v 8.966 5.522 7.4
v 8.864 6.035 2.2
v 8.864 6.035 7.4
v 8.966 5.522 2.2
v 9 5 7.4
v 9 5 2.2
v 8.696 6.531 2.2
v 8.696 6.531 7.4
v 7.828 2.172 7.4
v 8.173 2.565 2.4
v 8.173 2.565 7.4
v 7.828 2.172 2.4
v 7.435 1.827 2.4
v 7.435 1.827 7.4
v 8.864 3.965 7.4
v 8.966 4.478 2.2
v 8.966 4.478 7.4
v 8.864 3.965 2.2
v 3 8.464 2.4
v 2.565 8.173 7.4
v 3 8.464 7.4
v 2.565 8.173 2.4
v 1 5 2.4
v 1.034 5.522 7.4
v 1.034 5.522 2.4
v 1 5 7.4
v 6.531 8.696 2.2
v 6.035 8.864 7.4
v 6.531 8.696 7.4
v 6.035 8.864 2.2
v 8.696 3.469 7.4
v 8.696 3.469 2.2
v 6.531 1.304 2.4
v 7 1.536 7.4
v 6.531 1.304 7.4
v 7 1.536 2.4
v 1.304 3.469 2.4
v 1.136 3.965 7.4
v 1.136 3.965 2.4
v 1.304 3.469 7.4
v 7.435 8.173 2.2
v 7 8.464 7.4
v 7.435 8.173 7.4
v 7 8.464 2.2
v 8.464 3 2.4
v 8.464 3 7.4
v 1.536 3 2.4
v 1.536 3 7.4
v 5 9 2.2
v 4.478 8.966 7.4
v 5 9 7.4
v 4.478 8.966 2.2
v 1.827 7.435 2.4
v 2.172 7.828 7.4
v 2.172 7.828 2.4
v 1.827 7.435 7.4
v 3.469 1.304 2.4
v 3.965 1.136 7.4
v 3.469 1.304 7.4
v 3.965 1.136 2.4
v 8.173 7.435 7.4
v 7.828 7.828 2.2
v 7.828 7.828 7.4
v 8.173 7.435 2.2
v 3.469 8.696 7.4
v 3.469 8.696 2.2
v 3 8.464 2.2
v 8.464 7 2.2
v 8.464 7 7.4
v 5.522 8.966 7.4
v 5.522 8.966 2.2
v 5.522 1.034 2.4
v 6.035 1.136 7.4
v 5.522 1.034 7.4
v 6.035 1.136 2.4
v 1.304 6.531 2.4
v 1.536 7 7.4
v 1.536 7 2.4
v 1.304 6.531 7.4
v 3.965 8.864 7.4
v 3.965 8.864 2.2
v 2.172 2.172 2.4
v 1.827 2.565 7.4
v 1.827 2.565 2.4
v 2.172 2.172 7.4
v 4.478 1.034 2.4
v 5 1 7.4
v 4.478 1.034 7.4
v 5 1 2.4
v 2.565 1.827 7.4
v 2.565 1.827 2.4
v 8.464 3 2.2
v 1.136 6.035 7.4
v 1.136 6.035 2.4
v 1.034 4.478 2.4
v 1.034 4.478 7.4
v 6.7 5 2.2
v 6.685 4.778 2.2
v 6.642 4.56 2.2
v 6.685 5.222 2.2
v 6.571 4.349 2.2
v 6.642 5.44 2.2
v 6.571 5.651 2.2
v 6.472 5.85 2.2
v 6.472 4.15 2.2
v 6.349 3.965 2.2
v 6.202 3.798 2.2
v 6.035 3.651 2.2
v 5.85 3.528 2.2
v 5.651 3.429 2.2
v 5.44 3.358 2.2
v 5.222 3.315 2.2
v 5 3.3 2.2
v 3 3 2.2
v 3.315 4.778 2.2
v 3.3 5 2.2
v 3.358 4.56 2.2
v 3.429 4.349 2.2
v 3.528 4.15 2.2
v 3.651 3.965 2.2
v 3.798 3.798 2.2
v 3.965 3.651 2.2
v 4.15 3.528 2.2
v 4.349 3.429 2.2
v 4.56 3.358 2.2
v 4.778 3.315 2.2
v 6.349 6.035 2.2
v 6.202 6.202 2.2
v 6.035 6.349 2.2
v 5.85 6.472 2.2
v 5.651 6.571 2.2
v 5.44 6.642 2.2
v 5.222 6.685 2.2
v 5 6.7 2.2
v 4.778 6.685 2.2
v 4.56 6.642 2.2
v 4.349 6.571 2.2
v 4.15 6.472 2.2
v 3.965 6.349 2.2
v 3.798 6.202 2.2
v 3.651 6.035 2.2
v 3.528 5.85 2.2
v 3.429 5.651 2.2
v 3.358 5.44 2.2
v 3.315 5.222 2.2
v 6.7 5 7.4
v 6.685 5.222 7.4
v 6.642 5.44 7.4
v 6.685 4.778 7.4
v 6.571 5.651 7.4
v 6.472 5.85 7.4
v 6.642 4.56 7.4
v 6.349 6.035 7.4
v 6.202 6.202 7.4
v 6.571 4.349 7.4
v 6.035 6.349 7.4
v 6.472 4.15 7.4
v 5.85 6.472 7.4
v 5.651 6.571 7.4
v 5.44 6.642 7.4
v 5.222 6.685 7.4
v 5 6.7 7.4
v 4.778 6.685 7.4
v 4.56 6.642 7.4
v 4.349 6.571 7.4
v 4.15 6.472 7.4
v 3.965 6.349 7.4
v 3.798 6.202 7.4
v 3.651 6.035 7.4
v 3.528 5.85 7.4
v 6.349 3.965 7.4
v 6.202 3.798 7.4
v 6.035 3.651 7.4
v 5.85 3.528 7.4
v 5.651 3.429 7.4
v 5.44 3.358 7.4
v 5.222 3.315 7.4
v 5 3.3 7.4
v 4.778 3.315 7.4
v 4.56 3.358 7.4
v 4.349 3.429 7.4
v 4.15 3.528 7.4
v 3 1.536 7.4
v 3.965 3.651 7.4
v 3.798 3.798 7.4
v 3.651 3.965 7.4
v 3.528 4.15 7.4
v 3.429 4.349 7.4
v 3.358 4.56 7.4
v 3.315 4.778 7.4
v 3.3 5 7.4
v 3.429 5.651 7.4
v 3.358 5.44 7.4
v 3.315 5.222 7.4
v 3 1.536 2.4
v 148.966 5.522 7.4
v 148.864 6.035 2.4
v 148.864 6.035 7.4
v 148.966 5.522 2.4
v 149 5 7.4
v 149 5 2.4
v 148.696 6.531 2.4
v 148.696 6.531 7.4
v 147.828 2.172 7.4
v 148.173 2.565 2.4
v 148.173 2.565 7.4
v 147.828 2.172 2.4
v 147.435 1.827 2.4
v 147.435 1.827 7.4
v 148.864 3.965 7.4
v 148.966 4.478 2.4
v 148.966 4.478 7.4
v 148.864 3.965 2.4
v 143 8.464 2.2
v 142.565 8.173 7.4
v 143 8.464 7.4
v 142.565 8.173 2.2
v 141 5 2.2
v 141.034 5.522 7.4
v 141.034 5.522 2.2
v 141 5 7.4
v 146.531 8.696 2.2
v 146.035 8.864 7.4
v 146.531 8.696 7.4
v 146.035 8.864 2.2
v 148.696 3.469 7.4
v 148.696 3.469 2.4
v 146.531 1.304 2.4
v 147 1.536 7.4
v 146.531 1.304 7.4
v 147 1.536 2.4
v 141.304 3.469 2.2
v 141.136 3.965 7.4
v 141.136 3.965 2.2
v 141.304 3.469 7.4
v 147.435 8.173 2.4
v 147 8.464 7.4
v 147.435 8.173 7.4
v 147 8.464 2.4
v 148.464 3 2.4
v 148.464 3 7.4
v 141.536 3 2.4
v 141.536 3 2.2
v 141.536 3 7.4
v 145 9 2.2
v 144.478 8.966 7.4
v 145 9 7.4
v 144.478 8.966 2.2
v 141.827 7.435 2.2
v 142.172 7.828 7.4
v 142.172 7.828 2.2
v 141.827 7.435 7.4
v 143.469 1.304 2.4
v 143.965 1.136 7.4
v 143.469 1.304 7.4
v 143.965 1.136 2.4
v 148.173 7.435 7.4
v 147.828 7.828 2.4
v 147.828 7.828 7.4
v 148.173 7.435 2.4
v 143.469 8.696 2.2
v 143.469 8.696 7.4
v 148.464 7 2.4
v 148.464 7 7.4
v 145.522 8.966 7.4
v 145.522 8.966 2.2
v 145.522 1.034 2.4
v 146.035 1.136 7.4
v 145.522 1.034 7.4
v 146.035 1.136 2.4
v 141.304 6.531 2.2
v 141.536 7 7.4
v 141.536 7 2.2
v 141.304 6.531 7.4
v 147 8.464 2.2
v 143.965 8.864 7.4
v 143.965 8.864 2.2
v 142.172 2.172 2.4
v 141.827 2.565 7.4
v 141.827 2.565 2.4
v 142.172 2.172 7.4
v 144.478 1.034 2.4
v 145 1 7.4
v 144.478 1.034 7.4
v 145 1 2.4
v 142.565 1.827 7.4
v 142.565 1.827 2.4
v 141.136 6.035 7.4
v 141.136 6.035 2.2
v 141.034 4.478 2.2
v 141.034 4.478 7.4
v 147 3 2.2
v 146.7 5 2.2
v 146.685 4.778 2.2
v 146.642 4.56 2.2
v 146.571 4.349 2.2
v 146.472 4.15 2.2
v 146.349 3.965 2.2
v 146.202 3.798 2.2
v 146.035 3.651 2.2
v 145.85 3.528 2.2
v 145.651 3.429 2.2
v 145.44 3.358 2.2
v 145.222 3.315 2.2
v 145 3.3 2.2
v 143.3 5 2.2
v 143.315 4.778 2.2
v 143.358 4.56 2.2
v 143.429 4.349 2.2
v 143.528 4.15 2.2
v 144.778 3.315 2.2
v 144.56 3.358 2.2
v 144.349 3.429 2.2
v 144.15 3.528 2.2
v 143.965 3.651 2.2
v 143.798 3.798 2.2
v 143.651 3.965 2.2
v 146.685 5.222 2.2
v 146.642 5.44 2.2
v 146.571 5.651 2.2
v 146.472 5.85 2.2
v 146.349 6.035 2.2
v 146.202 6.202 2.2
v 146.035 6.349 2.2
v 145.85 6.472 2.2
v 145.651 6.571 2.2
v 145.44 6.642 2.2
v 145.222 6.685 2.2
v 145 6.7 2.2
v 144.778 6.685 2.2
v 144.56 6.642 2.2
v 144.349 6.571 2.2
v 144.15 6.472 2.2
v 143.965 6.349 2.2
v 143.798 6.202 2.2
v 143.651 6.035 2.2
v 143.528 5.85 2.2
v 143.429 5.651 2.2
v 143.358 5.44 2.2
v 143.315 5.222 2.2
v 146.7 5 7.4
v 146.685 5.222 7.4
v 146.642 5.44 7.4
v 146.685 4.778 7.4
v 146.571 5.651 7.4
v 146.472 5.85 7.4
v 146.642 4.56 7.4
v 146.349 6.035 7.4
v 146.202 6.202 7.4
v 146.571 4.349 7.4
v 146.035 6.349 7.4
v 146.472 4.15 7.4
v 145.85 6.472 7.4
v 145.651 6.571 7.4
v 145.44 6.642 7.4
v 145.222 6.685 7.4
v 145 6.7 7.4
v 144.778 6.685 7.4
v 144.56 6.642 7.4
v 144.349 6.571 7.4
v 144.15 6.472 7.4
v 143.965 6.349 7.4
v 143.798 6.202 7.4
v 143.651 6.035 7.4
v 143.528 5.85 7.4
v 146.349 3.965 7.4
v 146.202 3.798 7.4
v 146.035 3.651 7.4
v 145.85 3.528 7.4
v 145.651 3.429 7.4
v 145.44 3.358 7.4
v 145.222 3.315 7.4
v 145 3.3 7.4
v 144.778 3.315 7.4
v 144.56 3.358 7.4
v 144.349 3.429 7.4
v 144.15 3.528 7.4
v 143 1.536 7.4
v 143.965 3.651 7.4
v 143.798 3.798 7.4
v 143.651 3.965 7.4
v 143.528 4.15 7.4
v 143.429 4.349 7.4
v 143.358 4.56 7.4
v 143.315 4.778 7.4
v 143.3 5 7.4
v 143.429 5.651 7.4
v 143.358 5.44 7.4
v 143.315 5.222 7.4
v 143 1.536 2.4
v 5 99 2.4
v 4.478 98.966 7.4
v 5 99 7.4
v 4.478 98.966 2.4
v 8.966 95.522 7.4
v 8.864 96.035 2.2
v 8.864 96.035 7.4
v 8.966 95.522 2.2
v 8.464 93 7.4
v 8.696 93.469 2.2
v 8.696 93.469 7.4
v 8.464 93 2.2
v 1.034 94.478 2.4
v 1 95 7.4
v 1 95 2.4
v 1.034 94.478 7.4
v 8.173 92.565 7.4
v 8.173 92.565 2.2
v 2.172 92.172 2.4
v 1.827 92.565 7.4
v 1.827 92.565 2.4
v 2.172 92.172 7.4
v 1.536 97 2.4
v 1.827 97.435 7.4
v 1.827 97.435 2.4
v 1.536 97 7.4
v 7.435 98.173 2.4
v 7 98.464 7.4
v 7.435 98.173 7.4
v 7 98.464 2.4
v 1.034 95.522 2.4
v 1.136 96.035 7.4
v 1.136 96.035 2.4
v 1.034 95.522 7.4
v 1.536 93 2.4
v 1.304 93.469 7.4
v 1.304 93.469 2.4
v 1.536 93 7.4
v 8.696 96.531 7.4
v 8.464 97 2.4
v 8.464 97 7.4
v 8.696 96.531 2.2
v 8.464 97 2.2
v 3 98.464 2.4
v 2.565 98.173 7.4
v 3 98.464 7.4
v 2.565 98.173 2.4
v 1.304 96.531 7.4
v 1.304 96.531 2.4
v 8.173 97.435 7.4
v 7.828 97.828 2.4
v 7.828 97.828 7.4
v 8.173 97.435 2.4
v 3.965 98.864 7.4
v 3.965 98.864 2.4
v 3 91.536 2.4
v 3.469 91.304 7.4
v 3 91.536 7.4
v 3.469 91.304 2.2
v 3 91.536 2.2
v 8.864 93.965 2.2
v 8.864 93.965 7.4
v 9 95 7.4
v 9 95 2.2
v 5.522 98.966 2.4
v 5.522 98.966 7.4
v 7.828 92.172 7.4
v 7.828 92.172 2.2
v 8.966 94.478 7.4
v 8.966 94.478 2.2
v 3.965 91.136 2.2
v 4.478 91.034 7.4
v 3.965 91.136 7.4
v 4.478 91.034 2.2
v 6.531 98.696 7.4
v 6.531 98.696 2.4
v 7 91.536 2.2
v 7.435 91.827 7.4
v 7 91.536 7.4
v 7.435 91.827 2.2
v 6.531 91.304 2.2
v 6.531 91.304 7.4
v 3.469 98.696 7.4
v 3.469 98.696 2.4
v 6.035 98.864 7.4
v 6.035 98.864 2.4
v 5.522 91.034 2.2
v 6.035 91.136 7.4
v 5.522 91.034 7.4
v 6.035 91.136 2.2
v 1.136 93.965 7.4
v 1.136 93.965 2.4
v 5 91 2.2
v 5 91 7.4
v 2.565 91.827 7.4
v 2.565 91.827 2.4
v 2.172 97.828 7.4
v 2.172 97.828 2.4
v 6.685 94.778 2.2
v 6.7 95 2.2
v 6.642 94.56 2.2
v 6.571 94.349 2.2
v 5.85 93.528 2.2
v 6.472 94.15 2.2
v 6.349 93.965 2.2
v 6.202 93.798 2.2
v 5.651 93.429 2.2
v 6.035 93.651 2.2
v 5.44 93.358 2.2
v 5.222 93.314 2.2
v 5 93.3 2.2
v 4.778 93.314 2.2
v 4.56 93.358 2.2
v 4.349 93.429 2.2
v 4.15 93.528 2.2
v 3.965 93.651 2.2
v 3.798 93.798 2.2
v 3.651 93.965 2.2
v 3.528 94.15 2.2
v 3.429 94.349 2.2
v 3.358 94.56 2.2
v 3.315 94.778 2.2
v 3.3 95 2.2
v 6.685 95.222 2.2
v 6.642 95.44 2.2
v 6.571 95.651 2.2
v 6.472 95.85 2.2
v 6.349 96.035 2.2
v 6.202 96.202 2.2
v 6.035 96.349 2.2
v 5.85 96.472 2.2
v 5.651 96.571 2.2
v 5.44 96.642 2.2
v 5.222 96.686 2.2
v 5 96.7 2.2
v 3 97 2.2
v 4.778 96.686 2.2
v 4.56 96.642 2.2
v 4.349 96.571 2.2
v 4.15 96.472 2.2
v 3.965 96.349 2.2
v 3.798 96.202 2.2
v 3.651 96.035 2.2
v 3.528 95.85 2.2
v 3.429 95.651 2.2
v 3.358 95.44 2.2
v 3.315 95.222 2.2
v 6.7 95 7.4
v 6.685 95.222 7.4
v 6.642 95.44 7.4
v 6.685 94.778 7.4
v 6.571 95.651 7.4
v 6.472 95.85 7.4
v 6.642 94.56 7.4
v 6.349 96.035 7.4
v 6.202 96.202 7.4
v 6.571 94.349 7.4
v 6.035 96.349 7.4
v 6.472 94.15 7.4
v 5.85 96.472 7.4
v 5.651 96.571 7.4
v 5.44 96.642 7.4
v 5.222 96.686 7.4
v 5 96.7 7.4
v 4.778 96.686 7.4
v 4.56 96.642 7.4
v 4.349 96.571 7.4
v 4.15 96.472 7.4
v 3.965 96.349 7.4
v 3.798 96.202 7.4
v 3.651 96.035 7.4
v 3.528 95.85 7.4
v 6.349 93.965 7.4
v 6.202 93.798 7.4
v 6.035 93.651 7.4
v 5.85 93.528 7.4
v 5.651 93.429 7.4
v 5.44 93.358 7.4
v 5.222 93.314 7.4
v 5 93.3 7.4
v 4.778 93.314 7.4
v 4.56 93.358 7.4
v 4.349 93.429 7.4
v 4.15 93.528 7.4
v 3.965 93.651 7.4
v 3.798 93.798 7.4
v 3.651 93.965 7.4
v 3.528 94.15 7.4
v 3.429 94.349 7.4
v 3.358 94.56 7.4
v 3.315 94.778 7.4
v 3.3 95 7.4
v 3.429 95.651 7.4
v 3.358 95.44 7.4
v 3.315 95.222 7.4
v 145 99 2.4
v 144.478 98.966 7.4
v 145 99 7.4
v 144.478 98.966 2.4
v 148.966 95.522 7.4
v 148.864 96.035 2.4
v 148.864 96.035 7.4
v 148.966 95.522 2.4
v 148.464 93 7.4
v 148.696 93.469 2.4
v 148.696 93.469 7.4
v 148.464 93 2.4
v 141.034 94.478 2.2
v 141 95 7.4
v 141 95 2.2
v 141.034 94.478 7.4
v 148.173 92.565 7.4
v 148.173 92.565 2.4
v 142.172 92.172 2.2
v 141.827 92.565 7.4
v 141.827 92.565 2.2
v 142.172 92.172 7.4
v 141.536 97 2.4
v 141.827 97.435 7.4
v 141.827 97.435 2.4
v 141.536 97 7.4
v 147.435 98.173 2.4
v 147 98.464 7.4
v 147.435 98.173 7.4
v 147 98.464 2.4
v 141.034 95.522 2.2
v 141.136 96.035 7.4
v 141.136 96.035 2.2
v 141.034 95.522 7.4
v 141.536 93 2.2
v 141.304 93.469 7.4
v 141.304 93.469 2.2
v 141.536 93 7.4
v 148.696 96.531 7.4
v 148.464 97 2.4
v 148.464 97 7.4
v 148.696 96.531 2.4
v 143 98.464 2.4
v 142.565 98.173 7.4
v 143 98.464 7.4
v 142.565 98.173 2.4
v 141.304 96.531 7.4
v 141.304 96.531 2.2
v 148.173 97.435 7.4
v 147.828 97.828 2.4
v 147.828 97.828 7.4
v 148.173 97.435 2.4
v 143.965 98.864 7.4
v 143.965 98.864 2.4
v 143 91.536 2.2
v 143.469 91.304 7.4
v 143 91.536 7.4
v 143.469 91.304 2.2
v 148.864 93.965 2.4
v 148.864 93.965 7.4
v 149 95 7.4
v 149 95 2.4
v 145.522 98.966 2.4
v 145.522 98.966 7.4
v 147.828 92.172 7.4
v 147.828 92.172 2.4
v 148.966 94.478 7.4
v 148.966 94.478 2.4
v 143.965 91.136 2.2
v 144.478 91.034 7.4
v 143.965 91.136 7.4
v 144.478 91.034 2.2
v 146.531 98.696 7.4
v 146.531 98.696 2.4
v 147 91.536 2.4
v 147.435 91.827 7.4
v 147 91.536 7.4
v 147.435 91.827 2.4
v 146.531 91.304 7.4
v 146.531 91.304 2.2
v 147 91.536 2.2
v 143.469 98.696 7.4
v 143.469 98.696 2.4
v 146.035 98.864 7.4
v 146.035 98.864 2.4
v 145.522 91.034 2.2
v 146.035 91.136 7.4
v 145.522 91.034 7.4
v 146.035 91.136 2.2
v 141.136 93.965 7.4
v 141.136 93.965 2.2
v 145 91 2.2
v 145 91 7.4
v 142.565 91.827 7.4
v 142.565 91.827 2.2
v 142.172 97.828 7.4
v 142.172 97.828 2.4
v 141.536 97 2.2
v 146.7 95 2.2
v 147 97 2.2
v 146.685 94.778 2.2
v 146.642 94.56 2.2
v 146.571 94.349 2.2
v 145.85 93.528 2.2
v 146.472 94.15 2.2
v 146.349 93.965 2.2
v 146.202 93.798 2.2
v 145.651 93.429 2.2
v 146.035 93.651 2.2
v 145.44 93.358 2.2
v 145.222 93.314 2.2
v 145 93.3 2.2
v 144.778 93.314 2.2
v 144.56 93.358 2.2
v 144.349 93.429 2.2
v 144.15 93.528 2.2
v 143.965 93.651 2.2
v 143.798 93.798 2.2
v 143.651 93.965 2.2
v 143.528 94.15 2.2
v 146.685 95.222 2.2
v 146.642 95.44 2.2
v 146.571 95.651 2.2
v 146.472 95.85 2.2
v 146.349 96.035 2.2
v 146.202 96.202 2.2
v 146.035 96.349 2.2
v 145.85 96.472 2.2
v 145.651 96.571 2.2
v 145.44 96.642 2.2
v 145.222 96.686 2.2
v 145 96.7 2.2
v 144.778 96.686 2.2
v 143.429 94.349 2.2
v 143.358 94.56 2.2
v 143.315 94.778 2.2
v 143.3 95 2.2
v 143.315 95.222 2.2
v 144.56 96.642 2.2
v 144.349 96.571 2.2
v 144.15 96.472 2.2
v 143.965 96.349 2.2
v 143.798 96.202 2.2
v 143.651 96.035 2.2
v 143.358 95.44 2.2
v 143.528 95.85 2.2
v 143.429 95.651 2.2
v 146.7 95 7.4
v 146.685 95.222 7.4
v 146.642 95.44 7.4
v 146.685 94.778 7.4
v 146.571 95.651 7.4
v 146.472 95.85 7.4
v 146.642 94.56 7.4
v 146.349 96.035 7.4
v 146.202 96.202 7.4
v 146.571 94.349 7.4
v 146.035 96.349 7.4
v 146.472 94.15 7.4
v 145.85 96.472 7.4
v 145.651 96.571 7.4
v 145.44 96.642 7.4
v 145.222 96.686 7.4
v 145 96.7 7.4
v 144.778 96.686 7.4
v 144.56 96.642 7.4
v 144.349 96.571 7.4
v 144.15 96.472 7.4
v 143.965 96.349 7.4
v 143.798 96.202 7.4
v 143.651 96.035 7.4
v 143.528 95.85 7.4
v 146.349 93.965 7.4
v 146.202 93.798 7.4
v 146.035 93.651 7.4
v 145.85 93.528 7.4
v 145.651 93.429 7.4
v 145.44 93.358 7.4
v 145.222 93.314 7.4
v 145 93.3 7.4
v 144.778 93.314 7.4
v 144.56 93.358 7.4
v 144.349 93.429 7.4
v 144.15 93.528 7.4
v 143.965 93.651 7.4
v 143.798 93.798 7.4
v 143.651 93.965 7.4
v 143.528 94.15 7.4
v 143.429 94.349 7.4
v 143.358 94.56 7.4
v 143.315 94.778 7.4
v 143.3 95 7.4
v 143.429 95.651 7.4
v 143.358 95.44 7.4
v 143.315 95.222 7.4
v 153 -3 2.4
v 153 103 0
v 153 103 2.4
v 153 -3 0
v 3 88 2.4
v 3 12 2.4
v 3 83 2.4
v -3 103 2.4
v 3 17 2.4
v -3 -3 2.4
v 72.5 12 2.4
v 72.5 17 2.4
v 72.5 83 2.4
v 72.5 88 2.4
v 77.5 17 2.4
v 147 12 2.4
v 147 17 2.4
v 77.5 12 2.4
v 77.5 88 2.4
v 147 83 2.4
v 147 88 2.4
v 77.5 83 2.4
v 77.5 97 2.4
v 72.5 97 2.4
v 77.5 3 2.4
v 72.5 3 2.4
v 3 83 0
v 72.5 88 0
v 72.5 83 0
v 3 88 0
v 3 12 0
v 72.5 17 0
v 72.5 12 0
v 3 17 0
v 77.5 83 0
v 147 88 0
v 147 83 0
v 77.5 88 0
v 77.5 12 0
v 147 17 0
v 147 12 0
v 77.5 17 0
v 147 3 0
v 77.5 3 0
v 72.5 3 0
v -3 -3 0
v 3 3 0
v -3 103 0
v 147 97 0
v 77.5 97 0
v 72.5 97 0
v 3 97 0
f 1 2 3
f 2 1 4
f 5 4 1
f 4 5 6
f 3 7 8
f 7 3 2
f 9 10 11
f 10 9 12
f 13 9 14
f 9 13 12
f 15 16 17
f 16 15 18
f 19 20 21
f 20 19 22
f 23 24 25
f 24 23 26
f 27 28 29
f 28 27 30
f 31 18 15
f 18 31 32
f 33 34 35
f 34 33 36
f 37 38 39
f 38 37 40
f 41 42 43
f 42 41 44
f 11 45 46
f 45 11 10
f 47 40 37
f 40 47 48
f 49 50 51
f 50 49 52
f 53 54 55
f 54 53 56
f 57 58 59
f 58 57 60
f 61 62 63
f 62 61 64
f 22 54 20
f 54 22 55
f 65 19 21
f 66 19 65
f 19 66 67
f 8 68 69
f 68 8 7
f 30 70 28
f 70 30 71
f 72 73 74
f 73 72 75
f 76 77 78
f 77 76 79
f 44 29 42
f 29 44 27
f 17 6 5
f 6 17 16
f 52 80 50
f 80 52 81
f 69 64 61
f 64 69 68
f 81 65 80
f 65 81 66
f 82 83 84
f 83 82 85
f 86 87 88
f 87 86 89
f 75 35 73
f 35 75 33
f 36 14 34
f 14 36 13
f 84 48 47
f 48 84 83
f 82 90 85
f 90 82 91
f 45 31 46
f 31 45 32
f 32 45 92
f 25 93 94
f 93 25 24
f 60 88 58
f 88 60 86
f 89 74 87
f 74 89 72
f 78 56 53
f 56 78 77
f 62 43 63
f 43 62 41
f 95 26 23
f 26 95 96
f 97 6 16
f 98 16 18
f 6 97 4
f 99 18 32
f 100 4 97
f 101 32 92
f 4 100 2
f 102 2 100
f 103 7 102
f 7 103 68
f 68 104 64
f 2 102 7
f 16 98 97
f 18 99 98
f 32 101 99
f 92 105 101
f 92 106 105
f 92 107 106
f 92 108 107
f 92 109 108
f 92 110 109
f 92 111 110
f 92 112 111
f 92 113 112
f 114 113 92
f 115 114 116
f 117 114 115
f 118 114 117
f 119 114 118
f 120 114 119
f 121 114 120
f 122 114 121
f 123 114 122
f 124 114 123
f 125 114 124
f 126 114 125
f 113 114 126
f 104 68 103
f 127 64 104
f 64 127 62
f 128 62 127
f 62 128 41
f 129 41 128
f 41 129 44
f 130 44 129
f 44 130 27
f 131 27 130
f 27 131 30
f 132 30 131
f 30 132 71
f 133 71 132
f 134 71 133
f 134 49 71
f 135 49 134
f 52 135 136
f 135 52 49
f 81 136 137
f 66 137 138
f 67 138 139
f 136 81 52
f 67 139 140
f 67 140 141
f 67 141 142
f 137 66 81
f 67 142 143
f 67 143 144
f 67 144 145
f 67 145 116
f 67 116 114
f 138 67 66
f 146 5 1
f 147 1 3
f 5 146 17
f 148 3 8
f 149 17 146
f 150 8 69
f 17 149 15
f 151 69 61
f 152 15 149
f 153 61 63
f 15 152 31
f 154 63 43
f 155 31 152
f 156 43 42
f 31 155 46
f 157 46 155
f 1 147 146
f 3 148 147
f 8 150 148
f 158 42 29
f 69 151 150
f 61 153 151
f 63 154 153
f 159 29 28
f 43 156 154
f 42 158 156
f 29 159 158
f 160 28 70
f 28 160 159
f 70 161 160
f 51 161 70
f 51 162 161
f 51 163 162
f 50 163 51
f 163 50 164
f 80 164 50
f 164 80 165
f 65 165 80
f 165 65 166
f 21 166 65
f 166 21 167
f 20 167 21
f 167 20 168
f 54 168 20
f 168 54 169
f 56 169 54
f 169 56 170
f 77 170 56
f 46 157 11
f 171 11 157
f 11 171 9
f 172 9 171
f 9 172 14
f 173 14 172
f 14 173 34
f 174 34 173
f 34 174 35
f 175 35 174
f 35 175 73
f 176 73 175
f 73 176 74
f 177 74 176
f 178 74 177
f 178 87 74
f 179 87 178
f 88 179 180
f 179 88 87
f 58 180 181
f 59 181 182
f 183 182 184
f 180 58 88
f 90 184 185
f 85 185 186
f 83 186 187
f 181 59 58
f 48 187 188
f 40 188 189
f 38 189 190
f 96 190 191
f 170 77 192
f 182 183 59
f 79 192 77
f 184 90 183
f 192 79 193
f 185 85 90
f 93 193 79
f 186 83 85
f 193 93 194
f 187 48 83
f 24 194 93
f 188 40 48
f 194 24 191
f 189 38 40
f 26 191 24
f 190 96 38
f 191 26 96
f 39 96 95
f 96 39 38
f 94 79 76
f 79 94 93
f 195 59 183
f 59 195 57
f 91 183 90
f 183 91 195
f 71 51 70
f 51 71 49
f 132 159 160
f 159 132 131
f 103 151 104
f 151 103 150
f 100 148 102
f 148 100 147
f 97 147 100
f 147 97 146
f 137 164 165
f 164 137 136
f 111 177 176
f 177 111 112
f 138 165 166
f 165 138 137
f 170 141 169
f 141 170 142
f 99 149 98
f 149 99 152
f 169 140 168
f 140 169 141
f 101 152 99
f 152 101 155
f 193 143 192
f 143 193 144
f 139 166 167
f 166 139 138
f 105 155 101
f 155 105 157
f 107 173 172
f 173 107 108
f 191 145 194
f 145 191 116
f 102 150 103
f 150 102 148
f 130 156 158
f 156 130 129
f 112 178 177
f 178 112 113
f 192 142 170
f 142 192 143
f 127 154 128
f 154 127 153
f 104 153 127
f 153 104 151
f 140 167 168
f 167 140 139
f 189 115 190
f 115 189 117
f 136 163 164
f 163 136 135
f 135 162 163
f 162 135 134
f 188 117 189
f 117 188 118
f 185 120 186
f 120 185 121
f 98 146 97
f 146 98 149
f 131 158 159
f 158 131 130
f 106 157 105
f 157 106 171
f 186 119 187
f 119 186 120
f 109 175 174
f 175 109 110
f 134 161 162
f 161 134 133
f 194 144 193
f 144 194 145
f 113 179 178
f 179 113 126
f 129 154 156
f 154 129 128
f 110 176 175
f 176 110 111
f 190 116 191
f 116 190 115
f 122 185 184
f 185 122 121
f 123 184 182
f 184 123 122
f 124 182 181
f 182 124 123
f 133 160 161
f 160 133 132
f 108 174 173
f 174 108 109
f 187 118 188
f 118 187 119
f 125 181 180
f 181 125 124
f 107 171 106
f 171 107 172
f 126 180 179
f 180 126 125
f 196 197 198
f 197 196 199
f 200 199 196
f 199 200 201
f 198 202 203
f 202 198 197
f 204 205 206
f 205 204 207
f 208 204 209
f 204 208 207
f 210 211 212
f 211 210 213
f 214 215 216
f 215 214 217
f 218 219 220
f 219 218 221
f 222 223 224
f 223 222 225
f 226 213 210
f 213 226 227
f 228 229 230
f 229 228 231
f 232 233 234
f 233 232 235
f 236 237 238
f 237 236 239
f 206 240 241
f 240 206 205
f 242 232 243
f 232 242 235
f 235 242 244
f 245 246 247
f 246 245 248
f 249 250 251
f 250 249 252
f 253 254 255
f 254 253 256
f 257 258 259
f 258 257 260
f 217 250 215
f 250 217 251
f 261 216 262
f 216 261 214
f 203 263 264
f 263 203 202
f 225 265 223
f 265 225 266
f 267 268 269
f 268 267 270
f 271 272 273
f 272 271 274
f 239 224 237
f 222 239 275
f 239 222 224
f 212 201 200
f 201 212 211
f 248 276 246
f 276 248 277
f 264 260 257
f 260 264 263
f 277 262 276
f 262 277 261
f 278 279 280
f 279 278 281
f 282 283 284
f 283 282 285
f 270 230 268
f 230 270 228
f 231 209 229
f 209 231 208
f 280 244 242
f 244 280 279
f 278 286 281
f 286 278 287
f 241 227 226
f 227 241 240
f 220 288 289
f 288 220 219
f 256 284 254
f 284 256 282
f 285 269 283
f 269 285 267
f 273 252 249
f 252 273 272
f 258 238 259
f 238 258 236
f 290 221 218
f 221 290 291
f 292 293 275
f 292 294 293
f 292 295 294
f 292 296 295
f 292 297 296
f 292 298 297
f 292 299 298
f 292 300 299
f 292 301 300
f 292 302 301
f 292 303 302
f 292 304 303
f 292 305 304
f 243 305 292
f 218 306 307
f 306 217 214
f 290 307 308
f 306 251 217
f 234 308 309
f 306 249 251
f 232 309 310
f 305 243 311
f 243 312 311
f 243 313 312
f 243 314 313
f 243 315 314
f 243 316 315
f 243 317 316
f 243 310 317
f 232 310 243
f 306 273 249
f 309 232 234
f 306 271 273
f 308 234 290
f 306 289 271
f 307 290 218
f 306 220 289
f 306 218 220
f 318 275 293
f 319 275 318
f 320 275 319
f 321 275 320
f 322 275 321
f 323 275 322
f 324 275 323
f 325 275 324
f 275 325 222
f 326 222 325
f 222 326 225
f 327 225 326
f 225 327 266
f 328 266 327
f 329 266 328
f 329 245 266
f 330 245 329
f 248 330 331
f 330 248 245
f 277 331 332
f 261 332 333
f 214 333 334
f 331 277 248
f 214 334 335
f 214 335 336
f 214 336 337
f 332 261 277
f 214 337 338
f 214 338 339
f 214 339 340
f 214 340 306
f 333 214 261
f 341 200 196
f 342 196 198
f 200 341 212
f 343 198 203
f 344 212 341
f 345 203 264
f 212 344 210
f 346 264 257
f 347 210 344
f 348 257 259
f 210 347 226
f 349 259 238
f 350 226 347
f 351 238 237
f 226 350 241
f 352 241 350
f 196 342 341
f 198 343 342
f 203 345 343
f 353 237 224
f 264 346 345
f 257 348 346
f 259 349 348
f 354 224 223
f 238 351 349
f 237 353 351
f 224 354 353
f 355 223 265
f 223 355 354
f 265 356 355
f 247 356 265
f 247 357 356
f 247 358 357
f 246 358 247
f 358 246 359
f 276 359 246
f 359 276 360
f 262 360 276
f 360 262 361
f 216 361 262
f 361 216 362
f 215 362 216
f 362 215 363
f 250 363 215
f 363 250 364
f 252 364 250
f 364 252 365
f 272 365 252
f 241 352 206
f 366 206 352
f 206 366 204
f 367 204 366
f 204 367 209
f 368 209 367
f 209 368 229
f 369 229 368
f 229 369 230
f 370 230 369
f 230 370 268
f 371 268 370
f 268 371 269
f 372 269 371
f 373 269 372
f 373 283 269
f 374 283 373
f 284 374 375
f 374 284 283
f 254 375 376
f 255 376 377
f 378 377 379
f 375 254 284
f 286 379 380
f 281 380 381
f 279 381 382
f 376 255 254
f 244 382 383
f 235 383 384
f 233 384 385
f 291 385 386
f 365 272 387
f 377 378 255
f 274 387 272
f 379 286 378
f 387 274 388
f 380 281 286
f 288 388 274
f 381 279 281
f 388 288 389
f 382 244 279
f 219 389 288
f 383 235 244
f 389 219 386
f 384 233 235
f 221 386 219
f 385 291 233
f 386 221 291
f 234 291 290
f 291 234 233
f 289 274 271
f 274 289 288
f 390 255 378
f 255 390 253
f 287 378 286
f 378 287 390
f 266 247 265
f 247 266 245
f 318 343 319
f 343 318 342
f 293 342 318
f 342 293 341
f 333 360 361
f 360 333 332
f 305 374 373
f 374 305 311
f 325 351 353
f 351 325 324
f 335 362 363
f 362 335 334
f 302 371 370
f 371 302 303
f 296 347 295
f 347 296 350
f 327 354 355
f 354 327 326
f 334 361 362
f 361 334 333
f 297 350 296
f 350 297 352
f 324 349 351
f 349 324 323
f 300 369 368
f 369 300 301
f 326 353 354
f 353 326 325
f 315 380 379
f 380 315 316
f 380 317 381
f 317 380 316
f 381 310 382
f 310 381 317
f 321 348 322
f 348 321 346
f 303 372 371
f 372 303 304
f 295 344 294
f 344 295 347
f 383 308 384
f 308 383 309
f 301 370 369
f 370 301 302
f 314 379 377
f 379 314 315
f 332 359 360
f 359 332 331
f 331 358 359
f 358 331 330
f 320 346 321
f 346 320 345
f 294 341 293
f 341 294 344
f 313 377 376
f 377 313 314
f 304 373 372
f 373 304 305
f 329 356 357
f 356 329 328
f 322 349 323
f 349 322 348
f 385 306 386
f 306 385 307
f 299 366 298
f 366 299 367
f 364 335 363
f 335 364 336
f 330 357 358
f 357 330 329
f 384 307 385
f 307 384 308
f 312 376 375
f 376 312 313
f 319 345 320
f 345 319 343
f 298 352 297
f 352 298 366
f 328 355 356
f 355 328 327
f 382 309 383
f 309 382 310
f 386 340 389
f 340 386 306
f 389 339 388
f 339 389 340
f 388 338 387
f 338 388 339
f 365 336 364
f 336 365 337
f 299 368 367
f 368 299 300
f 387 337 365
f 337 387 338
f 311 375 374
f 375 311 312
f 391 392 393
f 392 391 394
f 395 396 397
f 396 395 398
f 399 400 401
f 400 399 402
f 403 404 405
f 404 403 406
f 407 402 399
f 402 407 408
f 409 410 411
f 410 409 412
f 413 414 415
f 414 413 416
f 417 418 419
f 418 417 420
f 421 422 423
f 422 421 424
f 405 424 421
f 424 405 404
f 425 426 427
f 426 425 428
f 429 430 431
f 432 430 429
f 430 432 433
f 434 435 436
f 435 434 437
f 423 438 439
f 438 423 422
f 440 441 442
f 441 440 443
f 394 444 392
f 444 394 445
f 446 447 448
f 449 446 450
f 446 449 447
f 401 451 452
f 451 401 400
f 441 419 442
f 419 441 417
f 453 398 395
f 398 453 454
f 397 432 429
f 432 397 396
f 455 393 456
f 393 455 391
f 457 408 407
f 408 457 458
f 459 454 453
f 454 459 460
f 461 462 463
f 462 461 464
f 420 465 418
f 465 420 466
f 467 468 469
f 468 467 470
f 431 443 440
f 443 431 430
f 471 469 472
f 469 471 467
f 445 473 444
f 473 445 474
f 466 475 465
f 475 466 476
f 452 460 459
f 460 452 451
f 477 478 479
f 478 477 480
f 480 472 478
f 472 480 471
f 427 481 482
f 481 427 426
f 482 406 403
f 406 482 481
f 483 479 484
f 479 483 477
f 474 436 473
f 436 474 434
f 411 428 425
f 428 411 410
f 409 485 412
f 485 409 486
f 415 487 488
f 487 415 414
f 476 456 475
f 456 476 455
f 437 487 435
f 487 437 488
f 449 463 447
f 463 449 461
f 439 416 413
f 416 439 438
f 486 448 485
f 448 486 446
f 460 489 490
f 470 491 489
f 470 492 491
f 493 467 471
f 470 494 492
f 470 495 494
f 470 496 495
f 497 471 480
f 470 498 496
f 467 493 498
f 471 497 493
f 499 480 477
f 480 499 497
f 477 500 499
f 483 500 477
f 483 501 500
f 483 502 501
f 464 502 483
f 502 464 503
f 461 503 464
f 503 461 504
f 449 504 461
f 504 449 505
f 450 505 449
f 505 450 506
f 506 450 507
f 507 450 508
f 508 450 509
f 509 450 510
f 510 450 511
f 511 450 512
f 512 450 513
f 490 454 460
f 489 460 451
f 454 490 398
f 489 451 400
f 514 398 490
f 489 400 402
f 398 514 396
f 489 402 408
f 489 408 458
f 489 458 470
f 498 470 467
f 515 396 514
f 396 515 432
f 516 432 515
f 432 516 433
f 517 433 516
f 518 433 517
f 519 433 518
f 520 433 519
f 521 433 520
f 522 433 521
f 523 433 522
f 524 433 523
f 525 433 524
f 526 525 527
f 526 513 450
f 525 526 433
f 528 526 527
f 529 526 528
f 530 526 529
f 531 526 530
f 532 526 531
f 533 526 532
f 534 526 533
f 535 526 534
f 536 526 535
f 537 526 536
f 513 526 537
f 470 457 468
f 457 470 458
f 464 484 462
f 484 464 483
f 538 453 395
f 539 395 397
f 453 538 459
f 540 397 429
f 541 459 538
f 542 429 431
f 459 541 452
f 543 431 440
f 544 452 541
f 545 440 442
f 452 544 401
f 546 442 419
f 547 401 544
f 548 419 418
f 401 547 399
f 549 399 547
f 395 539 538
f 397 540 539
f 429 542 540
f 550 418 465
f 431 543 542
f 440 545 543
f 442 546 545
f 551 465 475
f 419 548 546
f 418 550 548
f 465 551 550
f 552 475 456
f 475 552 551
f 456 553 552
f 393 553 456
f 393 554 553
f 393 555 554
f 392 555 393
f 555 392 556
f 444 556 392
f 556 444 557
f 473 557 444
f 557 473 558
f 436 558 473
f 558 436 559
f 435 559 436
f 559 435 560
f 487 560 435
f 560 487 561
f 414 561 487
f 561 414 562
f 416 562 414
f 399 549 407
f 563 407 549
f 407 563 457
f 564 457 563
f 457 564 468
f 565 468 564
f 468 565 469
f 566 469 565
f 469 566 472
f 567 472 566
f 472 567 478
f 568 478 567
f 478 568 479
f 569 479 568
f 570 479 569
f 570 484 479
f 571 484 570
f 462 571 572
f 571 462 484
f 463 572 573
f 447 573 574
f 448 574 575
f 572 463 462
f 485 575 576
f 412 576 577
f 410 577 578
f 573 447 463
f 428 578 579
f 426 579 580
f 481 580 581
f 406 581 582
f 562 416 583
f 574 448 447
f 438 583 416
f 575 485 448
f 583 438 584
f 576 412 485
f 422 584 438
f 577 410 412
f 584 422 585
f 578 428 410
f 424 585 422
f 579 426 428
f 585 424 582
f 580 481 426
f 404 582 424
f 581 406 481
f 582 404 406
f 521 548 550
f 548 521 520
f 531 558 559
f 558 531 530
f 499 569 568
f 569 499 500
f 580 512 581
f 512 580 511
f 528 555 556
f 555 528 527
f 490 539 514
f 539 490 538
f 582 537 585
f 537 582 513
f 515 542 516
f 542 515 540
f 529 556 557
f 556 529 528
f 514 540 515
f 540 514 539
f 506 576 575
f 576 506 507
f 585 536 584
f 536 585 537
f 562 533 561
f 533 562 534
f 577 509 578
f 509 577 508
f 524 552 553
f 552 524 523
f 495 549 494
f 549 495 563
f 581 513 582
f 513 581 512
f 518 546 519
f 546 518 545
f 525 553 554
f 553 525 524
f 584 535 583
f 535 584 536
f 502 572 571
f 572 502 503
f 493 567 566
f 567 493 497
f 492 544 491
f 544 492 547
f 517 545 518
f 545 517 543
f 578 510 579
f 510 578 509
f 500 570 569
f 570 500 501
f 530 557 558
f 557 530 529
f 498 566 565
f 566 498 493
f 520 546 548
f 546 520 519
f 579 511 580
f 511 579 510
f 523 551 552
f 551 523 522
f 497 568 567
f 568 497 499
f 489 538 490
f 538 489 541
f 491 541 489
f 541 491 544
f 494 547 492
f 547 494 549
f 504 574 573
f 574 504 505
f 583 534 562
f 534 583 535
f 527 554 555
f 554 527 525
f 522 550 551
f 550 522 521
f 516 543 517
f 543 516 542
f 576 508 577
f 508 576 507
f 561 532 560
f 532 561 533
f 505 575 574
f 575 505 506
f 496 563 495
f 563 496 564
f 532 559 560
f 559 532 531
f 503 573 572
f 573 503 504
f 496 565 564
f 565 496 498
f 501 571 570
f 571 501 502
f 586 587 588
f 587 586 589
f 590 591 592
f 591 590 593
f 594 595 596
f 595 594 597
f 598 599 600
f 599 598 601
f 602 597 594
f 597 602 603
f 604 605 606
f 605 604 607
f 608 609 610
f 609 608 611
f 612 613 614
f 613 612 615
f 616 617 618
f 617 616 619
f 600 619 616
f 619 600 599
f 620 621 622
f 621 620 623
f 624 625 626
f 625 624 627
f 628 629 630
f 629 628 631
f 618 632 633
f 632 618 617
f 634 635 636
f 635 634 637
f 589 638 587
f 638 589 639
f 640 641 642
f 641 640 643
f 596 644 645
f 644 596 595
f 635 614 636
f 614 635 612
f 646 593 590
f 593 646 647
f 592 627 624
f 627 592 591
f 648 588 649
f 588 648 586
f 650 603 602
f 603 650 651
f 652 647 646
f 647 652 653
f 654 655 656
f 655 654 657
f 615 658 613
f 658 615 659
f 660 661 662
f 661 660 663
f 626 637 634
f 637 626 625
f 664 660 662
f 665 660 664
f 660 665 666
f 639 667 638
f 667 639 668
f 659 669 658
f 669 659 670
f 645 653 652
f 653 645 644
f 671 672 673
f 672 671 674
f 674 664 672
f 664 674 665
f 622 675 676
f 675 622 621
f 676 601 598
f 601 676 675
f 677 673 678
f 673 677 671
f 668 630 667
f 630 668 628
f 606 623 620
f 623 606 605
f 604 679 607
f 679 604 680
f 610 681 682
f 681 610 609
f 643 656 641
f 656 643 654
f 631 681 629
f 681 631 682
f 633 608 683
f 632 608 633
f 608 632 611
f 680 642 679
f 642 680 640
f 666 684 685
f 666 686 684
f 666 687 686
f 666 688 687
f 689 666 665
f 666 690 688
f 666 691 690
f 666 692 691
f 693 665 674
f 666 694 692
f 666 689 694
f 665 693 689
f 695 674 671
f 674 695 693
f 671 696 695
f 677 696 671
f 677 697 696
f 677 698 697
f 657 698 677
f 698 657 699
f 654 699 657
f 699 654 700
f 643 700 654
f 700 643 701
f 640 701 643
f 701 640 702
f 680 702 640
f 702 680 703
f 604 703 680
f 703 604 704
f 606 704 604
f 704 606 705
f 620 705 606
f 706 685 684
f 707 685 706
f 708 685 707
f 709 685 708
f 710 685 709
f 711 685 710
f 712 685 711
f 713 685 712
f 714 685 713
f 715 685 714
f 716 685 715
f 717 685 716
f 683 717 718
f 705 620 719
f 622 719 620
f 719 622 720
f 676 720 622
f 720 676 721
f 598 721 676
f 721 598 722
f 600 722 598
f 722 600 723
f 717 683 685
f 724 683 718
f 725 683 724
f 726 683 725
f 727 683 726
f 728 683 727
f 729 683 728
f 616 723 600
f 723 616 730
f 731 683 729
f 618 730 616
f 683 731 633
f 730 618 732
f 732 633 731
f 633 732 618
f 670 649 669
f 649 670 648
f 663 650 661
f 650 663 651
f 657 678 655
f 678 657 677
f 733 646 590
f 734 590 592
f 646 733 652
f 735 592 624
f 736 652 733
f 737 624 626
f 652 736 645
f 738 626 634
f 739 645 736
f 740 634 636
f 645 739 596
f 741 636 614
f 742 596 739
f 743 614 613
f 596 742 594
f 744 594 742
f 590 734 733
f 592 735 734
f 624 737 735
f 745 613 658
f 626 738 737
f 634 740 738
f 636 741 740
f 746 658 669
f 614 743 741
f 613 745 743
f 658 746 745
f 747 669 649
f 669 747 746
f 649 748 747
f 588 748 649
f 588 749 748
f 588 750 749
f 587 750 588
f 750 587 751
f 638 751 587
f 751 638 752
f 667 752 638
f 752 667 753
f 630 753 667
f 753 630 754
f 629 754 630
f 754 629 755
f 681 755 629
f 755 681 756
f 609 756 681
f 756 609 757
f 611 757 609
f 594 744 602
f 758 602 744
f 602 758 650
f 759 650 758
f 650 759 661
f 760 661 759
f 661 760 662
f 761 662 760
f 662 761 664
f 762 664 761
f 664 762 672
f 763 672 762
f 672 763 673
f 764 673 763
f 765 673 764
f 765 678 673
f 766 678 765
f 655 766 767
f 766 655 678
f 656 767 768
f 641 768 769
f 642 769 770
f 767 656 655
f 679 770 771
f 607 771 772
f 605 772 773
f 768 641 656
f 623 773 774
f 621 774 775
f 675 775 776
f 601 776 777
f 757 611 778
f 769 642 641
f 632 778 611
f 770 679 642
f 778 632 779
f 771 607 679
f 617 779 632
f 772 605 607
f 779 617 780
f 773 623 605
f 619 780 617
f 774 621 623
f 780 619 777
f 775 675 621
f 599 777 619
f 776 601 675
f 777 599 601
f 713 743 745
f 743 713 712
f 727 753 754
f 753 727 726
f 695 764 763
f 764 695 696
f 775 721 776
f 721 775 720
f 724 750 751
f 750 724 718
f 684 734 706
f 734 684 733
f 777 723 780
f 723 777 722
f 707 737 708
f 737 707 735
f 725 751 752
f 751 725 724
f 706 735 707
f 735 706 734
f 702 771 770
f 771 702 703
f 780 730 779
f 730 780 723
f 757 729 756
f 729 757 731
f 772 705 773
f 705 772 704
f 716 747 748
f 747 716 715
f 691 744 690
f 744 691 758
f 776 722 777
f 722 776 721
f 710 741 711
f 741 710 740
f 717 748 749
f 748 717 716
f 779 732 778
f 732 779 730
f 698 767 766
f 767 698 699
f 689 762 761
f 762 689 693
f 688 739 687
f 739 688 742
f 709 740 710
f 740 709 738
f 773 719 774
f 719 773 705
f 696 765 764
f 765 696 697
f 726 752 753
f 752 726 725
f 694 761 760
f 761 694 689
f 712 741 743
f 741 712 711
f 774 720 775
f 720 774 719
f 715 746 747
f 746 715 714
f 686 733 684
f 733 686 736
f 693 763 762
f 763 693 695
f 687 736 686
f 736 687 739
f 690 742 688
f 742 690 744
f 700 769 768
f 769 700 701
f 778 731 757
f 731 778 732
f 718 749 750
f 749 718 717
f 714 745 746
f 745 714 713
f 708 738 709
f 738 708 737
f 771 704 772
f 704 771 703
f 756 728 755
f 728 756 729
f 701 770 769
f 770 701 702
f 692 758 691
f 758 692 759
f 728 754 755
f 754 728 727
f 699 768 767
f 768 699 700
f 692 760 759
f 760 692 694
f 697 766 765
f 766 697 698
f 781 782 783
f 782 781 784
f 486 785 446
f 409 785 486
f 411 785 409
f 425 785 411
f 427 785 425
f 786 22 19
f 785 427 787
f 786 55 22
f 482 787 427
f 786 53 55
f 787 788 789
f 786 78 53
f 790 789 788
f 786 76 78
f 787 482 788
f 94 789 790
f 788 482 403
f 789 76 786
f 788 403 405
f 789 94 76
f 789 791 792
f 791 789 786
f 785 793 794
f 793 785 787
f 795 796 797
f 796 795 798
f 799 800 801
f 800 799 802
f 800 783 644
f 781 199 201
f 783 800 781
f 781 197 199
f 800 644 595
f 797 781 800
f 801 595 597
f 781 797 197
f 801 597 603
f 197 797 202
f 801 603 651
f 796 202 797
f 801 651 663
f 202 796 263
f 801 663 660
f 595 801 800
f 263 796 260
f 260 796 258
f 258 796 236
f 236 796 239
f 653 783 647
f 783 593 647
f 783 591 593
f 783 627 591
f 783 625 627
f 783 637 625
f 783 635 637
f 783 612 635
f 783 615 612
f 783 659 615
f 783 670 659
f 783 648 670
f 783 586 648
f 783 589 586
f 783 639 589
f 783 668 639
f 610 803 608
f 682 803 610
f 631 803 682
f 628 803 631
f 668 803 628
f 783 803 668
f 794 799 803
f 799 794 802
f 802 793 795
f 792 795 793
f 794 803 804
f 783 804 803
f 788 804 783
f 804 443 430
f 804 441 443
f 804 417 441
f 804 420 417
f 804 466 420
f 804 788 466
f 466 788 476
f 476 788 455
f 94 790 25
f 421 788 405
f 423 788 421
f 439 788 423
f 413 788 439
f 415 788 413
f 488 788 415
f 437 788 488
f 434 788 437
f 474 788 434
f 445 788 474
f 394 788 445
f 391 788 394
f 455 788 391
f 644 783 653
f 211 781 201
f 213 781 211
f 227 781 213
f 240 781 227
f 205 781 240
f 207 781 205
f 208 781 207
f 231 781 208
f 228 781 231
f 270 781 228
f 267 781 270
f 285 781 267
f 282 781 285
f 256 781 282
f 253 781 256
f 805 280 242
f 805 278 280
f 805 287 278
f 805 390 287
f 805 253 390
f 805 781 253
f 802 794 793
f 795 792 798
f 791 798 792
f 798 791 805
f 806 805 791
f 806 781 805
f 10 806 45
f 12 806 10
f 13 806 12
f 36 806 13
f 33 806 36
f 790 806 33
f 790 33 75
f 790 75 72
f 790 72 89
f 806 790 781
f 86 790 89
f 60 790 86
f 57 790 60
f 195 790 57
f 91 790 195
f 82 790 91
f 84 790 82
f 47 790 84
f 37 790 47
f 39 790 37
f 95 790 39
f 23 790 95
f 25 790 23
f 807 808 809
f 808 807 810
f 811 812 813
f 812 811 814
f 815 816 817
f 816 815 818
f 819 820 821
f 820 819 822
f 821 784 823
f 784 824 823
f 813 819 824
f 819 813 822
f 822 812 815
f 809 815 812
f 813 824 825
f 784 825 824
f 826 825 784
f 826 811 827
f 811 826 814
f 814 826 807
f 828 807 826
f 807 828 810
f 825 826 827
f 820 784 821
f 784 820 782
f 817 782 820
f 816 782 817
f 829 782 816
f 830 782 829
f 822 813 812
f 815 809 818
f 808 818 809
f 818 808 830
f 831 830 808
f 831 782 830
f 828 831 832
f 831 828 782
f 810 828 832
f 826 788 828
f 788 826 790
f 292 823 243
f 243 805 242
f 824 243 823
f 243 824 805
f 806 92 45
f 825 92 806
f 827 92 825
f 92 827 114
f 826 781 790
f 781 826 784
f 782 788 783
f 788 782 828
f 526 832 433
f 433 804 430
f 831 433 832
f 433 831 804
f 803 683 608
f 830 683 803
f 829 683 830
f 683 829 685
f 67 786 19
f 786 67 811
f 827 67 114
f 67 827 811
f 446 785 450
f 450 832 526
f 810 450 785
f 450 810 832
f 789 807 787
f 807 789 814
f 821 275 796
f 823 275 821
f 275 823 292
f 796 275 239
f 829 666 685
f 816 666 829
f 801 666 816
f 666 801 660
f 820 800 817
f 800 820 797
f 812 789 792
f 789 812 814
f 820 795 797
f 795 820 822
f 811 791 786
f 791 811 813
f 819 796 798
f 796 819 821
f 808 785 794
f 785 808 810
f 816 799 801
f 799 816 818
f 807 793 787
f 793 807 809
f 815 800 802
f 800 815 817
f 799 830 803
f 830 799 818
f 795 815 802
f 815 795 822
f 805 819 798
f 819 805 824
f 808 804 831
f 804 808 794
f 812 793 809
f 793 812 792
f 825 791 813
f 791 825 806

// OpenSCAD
$fn=48;
pcb_x=150; pcb_y=100; margin=3; base_t=2.4; rim_w=6; rib_w=5;
post_d=8; post_h=5; hole_d=3.4;
module beam(x,y,w,d){translate([x,y,0]) cube([w,d,base_t]);}
module post(x,y){difference(){translate([x,y,base_t-0.2]) cylinder(d=post_d,h=post_h+0.2);translate([x,y,-0.1]) cylinder(d=hole_d,h=base_t+post_h+0.4);}}
union(){
 beam(-margin,-margin,pcb_x+2*margin,rim_w);
 beam(-margin,pcb_y+margin-rim_w,pcb_x+2*margin,rim_w);
 beam(-margin,-margin,rim_w,pcb_y+2*margin);
 beam(pcb_x+margin-rim_w,-margin,rim_w,pcb_y+2*margin);
 beam(0,12,pcb_x,rib_w);
 beam(0,83,pcb_x,rib_w);
 beam(72.5,0,rib_w,pcb_y);
 post(5,5); post(145,5); post(5,95); post(145,95);
}
